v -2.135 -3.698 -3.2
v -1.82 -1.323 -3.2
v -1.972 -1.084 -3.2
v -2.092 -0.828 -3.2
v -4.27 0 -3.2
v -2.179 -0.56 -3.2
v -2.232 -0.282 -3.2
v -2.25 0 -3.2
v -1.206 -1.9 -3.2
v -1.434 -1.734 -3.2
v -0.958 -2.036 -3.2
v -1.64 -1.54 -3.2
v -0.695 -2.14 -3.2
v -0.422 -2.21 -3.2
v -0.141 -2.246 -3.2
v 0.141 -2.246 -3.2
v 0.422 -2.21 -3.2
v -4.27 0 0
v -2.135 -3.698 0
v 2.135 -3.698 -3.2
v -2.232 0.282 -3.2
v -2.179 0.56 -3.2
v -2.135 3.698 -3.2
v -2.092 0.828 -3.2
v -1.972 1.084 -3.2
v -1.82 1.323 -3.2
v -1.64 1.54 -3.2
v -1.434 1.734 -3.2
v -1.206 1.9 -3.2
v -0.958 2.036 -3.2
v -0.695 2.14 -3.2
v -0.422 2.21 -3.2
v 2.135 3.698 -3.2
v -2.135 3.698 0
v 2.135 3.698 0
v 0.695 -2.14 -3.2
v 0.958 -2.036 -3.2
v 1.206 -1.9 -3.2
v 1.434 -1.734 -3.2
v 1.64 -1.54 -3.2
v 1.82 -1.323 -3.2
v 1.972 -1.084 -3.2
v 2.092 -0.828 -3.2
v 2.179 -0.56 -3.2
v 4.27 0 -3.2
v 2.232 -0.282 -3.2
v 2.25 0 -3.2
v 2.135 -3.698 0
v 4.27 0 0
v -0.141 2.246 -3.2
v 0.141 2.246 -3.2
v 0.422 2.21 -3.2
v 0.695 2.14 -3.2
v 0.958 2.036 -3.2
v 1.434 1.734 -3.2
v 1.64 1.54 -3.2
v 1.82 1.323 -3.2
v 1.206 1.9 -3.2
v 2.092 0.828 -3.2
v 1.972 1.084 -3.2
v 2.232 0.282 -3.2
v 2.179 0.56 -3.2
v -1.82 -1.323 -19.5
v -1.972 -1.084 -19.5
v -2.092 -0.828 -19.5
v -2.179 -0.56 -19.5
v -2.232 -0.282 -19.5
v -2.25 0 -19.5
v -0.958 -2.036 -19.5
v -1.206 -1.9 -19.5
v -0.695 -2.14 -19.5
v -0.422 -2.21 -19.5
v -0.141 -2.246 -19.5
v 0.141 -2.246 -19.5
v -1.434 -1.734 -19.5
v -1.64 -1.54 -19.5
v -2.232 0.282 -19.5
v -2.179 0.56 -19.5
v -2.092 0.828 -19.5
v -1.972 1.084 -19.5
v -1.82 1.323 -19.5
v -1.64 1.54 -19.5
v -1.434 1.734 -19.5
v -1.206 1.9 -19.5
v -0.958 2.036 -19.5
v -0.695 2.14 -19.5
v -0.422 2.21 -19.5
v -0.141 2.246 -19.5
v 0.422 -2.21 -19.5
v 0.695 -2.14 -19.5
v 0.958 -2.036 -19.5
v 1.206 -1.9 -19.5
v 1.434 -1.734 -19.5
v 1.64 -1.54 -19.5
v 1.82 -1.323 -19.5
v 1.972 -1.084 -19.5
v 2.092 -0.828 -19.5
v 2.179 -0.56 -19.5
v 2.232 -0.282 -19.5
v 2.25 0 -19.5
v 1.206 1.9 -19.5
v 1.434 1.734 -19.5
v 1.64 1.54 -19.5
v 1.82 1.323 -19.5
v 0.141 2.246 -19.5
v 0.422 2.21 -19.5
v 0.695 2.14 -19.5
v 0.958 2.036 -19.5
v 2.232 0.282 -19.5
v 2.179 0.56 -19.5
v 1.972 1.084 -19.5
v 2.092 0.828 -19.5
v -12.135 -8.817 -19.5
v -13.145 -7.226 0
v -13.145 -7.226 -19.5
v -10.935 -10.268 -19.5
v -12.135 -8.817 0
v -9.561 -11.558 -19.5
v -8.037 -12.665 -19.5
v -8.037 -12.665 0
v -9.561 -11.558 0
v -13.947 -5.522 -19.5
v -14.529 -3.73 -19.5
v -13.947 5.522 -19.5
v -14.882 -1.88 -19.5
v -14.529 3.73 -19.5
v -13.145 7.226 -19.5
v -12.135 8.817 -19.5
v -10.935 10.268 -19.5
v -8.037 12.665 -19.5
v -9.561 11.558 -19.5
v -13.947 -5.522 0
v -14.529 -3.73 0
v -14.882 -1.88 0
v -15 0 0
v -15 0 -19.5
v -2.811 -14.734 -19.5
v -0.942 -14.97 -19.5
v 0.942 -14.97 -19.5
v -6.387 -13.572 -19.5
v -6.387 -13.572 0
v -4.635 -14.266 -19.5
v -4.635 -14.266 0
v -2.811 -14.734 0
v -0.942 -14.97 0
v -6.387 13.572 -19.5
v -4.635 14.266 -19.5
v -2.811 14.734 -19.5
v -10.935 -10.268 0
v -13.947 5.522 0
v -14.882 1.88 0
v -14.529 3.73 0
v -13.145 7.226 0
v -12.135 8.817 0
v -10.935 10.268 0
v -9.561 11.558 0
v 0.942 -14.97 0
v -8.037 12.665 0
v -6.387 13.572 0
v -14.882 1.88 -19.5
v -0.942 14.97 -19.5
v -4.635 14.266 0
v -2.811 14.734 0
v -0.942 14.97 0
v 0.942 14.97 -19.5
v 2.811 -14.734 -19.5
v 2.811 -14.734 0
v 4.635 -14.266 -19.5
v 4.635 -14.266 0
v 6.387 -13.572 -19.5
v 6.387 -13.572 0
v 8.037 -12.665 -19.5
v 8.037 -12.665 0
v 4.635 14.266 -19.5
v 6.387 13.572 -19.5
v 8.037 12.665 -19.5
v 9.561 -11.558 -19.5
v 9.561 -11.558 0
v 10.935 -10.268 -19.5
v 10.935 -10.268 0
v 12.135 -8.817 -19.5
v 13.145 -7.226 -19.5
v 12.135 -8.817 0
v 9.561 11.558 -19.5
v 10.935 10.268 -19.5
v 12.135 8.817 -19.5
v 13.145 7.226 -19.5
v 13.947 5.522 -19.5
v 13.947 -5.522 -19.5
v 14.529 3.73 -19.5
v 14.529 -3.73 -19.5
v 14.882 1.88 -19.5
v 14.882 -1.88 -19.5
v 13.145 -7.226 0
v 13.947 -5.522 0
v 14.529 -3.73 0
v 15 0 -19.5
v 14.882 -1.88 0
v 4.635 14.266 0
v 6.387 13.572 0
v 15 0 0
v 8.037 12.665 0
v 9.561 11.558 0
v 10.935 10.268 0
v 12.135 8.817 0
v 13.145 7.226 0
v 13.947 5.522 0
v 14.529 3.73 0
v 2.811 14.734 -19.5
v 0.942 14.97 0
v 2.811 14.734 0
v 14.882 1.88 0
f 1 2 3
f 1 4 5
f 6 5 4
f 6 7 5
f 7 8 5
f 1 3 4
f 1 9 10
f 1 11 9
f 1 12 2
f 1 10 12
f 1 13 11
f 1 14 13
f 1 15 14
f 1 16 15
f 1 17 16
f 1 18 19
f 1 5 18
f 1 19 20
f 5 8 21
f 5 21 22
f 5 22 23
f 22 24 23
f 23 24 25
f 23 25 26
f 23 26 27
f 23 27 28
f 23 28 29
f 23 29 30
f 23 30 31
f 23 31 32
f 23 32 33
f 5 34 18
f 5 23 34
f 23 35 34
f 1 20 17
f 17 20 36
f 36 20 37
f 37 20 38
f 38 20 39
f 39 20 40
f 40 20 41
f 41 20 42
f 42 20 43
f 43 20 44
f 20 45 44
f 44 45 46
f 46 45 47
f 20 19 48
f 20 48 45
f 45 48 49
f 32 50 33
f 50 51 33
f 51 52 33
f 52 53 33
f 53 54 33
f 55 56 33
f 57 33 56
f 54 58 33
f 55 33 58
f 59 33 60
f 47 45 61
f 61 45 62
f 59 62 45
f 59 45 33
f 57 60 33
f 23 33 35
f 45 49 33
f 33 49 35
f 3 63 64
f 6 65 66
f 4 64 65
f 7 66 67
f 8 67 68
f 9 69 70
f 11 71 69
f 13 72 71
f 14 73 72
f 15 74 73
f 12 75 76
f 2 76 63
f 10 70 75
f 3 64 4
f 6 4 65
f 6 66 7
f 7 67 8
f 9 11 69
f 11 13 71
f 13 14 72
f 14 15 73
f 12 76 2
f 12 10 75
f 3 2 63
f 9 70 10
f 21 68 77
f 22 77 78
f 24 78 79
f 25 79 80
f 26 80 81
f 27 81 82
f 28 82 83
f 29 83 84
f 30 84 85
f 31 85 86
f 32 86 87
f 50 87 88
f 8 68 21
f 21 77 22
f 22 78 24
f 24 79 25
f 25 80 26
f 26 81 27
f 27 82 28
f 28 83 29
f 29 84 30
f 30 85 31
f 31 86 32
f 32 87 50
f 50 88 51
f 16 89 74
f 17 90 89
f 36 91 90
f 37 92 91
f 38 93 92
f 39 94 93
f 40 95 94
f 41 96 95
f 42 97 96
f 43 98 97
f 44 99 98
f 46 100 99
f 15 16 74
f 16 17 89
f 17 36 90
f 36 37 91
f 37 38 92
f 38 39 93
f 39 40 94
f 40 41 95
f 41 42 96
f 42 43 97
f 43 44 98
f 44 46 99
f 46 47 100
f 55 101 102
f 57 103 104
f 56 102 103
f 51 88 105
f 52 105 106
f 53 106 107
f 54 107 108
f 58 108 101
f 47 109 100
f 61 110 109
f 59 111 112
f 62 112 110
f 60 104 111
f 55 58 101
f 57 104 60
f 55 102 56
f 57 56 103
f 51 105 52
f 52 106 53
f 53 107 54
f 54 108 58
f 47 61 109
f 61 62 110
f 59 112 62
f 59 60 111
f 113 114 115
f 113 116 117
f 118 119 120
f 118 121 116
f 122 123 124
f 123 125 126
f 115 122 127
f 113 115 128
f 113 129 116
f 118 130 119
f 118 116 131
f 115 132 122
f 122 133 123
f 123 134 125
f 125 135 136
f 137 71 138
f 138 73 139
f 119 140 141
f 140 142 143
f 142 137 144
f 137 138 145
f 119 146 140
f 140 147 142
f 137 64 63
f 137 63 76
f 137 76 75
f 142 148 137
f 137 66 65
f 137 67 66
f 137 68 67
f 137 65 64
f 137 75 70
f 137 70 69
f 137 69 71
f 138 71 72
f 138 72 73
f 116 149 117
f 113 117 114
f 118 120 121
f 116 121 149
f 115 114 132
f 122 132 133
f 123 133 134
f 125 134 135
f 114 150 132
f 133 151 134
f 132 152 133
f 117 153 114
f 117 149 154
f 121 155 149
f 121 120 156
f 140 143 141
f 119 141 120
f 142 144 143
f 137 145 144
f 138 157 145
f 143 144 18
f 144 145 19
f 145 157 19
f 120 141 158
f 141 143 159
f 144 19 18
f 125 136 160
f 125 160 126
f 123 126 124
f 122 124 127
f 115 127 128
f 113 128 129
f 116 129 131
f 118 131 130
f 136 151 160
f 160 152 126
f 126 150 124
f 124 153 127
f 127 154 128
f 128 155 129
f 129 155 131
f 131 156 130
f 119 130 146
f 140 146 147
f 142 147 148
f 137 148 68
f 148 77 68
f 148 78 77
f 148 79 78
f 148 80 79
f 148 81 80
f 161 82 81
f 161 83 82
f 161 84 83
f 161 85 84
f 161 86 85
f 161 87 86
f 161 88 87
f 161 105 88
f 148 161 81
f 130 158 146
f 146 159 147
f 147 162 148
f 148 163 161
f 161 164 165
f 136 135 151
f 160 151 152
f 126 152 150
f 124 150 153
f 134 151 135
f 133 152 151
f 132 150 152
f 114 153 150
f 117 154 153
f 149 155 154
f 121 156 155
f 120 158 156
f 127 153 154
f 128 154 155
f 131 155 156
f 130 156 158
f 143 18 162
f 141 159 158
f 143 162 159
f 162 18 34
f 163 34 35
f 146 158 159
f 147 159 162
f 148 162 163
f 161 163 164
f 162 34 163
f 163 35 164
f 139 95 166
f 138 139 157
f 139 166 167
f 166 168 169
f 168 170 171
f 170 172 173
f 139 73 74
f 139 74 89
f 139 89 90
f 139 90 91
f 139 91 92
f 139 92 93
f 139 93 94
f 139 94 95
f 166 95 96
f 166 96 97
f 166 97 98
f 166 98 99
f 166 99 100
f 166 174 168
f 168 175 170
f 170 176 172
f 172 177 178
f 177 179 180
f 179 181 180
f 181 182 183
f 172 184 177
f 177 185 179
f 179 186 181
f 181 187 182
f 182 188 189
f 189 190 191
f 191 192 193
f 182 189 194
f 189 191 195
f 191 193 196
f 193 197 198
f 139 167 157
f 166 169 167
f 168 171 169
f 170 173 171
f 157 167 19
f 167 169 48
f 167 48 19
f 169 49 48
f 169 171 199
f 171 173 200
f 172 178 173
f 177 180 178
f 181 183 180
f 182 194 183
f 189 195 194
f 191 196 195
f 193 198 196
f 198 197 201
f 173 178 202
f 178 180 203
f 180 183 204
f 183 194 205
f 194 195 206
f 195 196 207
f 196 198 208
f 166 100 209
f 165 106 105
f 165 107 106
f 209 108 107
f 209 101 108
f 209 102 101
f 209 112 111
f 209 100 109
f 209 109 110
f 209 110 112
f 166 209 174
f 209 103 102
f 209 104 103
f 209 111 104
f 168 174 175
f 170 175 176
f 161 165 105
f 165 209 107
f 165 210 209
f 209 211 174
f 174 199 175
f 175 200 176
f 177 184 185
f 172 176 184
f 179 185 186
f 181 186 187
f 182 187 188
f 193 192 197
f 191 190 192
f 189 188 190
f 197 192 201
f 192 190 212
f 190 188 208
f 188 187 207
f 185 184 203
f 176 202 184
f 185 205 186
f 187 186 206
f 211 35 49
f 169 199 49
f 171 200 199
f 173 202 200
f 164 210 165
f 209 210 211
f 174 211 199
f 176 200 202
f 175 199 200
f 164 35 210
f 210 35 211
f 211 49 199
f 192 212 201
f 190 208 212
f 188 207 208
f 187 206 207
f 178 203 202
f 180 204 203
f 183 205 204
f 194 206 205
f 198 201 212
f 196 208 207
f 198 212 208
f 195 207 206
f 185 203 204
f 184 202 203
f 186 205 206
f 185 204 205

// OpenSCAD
$fn = 50;


difference() {
	union() {
		translate(v = [0, 0, -19.5000000000]) {
			cylinder(h = 19.5000000000, r = 15.0000000000);
		}
	}
	union() {
		translate(v = [0, 0, 0]) {
			rotate(a = [0, 0, 0]) {
				difference() {
					union() {
						translate(v = [0, 0, -3.2000000000]) {
							linear_extrude(height = 3.2000000000) {
								polygon(points = [[4.2698000000, 0.0000000000], [2.1349000000, 3.6977552691], [-2.1349000000, 3.6977552691], [-4.2698000000, 0.0000000000], [-2.1349000000, -3.6977552691], [2.1349000000, -3.6977552691]]);
							}
						}
					}
					union();
				}
			}
		}
		#translate(v = [0, 0, -100.0000000000]) {
			cylinder(h = 200, r = 2.2500000000);
		}
	}
}
